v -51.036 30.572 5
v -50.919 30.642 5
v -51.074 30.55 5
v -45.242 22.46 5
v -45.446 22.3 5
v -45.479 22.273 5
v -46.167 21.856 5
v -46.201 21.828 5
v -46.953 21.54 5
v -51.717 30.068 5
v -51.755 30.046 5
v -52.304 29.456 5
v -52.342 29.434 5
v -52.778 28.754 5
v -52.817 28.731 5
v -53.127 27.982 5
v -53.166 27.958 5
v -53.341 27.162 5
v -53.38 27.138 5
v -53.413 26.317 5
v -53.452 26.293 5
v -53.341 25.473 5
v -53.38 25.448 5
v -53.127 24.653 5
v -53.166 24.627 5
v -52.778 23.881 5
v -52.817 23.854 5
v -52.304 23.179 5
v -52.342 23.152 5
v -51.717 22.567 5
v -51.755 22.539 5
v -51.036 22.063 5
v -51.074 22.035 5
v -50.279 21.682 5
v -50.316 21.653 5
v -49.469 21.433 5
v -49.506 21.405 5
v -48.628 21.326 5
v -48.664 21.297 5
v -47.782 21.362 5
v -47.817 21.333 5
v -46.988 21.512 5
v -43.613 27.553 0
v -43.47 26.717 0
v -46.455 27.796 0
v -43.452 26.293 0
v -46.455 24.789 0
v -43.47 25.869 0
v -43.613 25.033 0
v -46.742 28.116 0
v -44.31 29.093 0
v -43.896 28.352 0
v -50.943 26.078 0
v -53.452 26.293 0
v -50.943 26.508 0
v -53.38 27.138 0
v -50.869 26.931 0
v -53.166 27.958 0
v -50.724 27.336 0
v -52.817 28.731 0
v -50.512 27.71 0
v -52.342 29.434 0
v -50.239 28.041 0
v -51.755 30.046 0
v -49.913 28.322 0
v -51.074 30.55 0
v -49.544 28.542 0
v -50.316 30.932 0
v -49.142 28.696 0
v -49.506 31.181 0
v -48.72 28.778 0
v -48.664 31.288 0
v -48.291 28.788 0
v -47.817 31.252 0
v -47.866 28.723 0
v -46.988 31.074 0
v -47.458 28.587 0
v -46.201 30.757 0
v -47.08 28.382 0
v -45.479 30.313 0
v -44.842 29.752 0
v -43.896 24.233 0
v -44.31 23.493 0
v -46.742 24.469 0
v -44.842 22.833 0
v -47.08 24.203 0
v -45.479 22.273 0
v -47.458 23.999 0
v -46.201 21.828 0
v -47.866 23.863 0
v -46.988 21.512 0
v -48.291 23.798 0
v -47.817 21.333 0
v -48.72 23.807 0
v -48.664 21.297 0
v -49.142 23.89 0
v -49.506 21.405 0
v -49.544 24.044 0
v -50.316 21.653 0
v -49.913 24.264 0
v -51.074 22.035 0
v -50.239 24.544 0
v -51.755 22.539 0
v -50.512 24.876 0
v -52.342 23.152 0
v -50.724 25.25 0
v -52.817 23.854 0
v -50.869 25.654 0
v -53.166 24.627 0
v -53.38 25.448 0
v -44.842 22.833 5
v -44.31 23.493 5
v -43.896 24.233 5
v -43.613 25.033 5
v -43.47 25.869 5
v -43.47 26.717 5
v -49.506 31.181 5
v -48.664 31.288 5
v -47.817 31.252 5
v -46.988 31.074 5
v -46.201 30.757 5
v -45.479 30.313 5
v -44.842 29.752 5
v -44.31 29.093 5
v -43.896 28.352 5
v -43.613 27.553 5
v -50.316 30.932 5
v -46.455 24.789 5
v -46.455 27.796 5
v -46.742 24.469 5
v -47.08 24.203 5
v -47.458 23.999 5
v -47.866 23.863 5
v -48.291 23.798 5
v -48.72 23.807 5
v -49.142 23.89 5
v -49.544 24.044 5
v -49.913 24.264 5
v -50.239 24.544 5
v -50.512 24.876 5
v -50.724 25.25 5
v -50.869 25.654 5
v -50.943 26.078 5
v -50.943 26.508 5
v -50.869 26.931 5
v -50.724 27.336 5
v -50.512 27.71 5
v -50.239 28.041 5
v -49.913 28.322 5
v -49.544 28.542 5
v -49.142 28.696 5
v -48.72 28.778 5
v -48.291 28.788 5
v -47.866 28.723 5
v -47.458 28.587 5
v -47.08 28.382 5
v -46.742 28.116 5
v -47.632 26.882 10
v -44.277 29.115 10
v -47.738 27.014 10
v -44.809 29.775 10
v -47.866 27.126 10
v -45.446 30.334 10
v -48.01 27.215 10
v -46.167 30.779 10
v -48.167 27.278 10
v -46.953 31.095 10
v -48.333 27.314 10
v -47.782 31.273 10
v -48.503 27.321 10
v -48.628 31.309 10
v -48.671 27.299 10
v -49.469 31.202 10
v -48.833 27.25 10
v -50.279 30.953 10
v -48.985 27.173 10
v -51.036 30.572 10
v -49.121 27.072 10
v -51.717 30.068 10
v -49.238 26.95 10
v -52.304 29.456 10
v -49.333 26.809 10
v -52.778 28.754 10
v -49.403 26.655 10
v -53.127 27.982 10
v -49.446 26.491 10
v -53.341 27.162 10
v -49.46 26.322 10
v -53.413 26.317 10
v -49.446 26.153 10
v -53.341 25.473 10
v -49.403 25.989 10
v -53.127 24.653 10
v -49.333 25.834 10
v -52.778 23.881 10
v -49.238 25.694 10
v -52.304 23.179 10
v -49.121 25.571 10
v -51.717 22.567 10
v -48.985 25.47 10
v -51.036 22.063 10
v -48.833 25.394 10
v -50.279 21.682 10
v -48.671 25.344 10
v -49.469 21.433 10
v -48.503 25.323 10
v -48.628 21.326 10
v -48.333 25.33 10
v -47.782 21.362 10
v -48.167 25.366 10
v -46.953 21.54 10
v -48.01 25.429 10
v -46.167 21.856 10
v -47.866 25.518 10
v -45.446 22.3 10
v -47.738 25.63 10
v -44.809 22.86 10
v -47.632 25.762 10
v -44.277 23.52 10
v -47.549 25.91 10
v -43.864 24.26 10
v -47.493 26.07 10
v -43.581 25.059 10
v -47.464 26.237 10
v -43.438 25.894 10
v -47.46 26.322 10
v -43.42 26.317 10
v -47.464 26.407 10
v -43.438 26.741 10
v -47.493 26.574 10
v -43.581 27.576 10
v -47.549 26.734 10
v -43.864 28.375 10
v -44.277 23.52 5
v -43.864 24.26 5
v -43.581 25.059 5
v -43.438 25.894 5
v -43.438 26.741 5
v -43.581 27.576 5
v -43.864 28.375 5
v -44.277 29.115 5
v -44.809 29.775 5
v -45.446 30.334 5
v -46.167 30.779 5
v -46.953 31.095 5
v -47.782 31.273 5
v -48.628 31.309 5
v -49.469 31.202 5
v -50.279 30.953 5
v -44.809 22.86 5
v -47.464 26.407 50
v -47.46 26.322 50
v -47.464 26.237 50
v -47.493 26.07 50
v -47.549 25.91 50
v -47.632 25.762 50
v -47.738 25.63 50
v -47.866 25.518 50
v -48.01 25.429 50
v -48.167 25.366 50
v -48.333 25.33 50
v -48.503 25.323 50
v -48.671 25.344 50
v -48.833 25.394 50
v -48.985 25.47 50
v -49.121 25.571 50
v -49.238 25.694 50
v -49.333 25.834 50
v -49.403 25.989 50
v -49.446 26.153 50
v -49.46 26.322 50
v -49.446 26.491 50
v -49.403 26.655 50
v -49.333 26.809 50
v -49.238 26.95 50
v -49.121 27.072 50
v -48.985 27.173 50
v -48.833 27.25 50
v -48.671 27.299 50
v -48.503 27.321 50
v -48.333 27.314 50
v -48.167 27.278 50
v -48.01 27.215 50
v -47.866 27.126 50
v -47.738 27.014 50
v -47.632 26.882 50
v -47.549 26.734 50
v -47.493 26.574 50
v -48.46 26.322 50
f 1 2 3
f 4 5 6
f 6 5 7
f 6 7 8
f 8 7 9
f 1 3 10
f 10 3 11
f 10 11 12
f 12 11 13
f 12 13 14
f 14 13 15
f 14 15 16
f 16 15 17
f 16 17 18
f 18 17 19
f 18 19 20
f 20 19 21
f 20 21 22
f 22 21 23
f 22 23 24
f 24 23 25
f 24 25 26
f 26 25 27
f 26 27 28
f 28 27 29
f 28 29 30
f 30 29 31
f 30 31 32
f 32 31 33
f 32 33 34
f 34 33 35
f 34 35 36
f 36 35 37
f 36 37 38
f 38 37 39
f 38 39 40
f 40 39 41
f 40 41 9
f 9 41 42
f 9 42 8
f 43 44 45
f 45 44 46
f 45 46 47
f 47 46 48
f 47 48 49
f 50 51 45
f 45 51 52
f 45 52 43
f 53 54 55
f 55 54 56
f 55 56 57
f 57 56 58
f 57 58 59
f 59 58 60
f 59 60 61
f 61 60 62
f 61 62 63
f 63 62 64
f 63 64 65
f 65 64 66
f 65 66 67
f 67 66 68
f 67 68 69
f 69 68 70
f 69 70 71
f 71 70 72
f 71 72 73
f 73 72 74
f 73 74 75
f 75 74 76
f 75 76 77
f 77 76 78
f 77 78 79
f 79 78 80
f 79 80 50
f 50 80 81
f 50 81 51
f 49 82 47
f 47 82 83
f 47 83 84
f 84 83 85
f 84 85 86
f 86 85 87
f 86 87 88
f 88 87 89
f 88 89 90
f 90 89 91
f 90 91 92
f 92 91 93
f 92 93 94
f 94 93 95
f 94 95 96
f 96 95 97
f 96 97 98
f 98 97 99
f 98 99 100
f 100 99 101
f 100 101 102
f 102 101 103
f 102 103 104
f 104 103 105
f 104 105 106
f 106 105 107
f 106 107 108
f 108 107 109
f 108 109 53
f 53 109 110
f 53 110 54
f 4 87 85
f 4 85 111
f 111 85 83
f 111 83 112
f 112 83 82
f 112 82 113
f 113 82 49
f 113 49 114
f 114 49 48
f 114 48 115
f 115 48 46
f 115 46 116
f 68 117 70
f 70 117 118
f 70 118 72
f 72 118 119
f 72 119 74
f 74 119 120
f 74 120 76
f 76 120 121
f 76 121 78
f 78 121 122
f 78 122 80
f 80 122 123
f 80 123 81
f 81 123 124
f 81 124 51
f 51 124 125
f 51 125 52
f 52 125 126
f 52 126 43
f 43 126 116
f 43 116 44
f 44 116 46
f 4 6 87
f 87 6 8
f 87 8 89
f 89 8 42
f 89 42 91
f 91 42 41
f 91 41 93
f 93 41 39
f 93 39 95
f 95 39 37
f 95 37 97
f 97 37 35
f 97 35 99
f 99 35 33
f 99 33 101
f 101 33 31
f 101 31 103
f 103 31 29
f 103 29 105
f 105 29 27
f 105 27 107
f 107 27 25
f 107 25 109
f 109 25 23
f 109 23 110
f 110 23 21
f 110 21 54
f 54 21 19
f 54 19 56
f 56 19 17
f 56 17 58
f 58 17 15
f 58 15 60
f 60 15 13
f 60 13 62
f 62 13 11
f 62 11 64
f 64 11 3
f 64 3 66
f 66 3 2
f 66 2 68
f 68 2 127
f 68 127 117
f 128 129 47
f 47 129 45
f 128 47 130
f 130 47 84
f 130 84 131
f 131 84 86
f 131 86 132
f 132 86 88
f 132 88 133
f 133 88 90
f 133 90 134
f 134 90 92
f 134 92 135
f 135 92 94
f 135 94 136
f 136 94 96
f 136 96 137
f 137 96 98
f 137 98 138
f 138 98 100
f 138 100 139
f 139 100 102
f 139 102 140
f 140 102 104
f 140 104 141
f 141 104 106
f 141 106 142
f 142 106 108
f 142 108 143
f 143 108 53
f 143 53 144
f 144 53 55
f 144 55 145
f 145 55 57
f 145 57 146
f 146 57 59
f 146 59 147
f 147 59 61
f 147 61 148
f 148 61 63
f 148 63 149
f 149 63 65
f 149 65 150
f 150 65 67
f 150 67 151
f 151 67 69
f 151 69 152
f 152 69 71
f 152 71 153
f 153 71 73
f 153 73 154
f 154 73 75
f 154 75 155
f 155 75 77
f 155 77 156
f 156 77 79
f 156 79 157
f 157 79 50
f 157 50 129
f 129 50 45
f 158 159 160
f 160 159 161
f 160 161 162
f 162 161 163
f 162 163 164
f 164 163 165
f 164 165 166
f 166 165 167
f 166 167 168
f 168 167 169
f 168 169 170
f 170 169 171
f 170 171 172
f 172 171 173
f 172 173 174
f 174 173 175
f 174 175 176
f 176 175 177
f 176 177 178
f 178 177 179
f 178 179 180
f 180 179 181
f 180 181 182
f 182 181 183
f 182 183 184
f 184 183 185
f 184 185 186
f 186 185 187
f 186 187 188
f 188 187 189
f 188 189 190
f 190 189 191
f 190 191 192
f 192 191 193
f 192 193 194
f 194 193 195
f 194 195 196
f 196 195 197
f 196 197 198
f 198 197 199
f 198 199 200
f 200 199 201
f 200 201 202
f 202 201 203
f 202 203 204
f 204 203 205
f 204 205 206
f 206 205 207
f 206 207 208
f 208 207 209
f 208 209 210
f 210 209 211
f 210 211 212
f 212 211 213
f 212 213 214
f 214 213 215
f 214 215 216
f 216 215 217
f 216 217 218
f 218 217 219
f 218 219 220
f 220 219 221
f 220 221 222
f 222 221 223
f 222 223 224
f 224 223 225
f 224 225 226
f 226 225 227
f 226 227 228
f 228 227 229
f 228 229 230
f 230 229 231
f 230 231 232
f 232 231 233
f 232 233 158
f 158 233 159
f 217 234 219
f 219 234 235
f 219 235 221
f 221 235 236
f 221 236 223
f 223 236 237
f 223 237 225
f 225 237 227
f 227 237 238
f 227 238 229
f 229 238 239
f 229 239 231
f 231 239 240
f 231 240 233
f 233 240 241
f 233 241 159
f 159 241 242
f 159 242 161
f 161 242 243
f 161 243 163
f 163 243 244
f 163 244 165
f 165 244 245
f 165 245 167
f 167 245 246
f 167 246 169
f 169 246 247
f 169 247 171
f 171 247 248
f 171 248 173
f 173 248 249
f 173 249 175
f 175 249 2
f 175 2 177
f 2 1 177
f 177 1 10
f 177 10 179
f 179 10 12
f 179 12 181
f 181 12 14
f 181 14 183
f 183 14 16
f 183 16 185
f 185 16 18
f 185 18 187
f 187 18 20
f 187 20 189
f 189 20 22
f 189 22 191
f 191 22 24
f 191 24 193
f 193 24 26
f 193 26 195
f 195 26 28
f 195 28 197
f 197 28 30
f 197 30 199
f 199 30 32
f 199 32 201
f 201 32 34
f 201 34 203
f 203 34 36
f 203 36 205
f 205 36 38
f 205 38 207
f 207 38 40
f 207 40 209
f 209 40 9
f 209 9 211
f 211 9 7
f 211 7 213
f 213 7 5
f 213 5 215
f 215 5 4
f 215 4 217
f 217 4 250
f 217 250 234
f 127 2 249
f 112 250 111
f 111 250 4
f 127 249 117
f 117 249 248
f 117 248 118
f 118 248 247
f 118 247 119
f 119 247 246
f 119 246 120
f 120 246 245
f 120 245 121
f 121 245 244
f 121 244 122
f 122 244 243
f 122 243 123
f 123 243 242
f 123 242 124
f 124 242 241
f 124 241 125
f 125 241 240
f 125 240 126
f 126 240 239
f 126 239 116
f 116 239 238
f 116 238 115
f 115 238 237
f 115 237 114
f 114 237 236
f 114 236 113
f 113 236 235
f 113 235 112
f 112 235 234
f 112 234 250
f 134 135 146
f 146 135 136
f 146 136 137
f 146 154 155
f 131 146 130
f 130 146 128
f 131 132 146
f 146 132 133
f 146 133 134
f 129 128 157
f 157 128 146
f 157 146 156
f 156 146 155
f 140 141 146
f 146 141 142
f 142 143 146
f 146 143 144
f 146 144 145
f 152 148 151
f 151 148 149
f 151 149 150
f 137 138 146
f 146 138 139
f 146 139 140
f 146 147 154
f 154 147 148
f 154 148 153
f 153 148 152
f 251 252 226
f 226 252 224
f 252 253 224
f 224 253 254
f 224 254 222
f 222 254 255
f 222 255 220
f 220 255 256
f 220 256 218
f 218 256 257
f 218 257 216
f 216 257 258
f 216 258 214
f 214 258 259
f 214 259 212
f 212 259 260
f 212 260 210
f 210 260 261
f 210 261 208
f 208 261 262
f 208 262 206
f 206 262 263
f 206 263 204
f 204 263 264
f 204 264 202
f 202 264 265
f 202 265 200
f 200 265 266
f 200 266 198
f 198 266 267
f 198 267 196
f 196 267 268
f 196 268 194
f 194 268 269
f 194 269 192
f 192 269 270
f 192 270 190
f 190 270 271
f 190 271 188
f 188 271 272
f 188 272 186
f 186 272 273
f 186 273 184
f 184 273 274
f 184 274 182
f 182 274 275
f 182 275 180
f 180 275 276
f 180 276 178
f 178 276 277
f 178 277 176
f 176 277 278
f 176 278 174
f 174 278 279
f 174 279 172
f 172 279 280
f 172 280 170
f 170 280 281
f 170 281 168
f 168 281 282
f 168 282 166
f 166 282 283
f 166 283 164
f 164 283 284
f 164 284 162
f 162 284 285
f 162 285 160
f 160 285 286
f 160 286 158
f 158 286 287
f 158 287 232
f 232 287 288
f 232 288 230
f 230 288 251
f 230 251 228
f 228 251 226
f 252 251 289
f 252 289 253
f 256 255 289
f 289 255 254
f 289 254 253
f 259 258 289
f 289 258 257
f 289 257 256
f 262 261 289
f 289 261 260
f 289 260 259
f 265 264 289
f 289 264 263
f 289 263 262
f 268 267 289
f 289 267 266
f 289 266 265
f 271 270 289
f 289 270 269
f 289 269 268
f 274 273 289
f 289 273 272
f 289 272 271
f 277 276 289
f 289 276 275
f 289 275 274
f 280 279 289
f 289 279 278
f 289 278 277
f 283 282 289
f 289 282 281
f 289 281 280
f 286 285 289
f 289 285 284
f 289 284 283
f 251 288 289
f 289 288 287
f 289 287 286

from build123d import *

# Parameters (mm, degrees)
SKETCH8_R           = 5
BOSS_EXTRUDE3_DEPTH = 5
SKETCH9_R           = 4.996260813
BOSS_EXTRUDE4_DEPTH = 5
SKETCH10_R          = 1
BOSS_EXTRUDE5_DEPTH = 40


with BuildPart() as part:
    # Sketch8 → Boss-Extrude3 (new body)
    with BuildSketch(Plane.XY):
        with Locations((-48.452108999, 26.292732134)):
            Circle(SKETCH8_R)
        with BuildLine():
            Line((-46.454907961, 26.292732134), (-46.454907961, 27.796456848))
            ThreePointArc((-46.454907961, 27.796456848), (-50.952108999, 26.292732134), (-46.454907961, 24.789007421))
            Line((-46.454907961, 24.789007421), (-46.454907961, 26.292732134))
        make_face(mode=Mode.SUBTRACT)
    extrude(amount=BOSS_EXTRUDE3_DEPTH)

    # Sketch9 → Boss-Extrude4 (add)
    with BuildSketch(Plane.XY.offset(5)):
        with Locations((-48.416448045, 26.317478542)):
            Circle(SKETCH9_R)
    extrude(amount=BOSS_EXTRUDE4_DEPTH)

    # Sketch10 → Boss-Extrude5 (add)
    with BuildSketch(Plane.XY.offset(10)):
        with Locations((-48.460247299, 26.321784668)):
            Circle(SKETCH10_R)
    extrude(amount=BOSS_EXTRUDE5_DEPTH)


solid = part.part
